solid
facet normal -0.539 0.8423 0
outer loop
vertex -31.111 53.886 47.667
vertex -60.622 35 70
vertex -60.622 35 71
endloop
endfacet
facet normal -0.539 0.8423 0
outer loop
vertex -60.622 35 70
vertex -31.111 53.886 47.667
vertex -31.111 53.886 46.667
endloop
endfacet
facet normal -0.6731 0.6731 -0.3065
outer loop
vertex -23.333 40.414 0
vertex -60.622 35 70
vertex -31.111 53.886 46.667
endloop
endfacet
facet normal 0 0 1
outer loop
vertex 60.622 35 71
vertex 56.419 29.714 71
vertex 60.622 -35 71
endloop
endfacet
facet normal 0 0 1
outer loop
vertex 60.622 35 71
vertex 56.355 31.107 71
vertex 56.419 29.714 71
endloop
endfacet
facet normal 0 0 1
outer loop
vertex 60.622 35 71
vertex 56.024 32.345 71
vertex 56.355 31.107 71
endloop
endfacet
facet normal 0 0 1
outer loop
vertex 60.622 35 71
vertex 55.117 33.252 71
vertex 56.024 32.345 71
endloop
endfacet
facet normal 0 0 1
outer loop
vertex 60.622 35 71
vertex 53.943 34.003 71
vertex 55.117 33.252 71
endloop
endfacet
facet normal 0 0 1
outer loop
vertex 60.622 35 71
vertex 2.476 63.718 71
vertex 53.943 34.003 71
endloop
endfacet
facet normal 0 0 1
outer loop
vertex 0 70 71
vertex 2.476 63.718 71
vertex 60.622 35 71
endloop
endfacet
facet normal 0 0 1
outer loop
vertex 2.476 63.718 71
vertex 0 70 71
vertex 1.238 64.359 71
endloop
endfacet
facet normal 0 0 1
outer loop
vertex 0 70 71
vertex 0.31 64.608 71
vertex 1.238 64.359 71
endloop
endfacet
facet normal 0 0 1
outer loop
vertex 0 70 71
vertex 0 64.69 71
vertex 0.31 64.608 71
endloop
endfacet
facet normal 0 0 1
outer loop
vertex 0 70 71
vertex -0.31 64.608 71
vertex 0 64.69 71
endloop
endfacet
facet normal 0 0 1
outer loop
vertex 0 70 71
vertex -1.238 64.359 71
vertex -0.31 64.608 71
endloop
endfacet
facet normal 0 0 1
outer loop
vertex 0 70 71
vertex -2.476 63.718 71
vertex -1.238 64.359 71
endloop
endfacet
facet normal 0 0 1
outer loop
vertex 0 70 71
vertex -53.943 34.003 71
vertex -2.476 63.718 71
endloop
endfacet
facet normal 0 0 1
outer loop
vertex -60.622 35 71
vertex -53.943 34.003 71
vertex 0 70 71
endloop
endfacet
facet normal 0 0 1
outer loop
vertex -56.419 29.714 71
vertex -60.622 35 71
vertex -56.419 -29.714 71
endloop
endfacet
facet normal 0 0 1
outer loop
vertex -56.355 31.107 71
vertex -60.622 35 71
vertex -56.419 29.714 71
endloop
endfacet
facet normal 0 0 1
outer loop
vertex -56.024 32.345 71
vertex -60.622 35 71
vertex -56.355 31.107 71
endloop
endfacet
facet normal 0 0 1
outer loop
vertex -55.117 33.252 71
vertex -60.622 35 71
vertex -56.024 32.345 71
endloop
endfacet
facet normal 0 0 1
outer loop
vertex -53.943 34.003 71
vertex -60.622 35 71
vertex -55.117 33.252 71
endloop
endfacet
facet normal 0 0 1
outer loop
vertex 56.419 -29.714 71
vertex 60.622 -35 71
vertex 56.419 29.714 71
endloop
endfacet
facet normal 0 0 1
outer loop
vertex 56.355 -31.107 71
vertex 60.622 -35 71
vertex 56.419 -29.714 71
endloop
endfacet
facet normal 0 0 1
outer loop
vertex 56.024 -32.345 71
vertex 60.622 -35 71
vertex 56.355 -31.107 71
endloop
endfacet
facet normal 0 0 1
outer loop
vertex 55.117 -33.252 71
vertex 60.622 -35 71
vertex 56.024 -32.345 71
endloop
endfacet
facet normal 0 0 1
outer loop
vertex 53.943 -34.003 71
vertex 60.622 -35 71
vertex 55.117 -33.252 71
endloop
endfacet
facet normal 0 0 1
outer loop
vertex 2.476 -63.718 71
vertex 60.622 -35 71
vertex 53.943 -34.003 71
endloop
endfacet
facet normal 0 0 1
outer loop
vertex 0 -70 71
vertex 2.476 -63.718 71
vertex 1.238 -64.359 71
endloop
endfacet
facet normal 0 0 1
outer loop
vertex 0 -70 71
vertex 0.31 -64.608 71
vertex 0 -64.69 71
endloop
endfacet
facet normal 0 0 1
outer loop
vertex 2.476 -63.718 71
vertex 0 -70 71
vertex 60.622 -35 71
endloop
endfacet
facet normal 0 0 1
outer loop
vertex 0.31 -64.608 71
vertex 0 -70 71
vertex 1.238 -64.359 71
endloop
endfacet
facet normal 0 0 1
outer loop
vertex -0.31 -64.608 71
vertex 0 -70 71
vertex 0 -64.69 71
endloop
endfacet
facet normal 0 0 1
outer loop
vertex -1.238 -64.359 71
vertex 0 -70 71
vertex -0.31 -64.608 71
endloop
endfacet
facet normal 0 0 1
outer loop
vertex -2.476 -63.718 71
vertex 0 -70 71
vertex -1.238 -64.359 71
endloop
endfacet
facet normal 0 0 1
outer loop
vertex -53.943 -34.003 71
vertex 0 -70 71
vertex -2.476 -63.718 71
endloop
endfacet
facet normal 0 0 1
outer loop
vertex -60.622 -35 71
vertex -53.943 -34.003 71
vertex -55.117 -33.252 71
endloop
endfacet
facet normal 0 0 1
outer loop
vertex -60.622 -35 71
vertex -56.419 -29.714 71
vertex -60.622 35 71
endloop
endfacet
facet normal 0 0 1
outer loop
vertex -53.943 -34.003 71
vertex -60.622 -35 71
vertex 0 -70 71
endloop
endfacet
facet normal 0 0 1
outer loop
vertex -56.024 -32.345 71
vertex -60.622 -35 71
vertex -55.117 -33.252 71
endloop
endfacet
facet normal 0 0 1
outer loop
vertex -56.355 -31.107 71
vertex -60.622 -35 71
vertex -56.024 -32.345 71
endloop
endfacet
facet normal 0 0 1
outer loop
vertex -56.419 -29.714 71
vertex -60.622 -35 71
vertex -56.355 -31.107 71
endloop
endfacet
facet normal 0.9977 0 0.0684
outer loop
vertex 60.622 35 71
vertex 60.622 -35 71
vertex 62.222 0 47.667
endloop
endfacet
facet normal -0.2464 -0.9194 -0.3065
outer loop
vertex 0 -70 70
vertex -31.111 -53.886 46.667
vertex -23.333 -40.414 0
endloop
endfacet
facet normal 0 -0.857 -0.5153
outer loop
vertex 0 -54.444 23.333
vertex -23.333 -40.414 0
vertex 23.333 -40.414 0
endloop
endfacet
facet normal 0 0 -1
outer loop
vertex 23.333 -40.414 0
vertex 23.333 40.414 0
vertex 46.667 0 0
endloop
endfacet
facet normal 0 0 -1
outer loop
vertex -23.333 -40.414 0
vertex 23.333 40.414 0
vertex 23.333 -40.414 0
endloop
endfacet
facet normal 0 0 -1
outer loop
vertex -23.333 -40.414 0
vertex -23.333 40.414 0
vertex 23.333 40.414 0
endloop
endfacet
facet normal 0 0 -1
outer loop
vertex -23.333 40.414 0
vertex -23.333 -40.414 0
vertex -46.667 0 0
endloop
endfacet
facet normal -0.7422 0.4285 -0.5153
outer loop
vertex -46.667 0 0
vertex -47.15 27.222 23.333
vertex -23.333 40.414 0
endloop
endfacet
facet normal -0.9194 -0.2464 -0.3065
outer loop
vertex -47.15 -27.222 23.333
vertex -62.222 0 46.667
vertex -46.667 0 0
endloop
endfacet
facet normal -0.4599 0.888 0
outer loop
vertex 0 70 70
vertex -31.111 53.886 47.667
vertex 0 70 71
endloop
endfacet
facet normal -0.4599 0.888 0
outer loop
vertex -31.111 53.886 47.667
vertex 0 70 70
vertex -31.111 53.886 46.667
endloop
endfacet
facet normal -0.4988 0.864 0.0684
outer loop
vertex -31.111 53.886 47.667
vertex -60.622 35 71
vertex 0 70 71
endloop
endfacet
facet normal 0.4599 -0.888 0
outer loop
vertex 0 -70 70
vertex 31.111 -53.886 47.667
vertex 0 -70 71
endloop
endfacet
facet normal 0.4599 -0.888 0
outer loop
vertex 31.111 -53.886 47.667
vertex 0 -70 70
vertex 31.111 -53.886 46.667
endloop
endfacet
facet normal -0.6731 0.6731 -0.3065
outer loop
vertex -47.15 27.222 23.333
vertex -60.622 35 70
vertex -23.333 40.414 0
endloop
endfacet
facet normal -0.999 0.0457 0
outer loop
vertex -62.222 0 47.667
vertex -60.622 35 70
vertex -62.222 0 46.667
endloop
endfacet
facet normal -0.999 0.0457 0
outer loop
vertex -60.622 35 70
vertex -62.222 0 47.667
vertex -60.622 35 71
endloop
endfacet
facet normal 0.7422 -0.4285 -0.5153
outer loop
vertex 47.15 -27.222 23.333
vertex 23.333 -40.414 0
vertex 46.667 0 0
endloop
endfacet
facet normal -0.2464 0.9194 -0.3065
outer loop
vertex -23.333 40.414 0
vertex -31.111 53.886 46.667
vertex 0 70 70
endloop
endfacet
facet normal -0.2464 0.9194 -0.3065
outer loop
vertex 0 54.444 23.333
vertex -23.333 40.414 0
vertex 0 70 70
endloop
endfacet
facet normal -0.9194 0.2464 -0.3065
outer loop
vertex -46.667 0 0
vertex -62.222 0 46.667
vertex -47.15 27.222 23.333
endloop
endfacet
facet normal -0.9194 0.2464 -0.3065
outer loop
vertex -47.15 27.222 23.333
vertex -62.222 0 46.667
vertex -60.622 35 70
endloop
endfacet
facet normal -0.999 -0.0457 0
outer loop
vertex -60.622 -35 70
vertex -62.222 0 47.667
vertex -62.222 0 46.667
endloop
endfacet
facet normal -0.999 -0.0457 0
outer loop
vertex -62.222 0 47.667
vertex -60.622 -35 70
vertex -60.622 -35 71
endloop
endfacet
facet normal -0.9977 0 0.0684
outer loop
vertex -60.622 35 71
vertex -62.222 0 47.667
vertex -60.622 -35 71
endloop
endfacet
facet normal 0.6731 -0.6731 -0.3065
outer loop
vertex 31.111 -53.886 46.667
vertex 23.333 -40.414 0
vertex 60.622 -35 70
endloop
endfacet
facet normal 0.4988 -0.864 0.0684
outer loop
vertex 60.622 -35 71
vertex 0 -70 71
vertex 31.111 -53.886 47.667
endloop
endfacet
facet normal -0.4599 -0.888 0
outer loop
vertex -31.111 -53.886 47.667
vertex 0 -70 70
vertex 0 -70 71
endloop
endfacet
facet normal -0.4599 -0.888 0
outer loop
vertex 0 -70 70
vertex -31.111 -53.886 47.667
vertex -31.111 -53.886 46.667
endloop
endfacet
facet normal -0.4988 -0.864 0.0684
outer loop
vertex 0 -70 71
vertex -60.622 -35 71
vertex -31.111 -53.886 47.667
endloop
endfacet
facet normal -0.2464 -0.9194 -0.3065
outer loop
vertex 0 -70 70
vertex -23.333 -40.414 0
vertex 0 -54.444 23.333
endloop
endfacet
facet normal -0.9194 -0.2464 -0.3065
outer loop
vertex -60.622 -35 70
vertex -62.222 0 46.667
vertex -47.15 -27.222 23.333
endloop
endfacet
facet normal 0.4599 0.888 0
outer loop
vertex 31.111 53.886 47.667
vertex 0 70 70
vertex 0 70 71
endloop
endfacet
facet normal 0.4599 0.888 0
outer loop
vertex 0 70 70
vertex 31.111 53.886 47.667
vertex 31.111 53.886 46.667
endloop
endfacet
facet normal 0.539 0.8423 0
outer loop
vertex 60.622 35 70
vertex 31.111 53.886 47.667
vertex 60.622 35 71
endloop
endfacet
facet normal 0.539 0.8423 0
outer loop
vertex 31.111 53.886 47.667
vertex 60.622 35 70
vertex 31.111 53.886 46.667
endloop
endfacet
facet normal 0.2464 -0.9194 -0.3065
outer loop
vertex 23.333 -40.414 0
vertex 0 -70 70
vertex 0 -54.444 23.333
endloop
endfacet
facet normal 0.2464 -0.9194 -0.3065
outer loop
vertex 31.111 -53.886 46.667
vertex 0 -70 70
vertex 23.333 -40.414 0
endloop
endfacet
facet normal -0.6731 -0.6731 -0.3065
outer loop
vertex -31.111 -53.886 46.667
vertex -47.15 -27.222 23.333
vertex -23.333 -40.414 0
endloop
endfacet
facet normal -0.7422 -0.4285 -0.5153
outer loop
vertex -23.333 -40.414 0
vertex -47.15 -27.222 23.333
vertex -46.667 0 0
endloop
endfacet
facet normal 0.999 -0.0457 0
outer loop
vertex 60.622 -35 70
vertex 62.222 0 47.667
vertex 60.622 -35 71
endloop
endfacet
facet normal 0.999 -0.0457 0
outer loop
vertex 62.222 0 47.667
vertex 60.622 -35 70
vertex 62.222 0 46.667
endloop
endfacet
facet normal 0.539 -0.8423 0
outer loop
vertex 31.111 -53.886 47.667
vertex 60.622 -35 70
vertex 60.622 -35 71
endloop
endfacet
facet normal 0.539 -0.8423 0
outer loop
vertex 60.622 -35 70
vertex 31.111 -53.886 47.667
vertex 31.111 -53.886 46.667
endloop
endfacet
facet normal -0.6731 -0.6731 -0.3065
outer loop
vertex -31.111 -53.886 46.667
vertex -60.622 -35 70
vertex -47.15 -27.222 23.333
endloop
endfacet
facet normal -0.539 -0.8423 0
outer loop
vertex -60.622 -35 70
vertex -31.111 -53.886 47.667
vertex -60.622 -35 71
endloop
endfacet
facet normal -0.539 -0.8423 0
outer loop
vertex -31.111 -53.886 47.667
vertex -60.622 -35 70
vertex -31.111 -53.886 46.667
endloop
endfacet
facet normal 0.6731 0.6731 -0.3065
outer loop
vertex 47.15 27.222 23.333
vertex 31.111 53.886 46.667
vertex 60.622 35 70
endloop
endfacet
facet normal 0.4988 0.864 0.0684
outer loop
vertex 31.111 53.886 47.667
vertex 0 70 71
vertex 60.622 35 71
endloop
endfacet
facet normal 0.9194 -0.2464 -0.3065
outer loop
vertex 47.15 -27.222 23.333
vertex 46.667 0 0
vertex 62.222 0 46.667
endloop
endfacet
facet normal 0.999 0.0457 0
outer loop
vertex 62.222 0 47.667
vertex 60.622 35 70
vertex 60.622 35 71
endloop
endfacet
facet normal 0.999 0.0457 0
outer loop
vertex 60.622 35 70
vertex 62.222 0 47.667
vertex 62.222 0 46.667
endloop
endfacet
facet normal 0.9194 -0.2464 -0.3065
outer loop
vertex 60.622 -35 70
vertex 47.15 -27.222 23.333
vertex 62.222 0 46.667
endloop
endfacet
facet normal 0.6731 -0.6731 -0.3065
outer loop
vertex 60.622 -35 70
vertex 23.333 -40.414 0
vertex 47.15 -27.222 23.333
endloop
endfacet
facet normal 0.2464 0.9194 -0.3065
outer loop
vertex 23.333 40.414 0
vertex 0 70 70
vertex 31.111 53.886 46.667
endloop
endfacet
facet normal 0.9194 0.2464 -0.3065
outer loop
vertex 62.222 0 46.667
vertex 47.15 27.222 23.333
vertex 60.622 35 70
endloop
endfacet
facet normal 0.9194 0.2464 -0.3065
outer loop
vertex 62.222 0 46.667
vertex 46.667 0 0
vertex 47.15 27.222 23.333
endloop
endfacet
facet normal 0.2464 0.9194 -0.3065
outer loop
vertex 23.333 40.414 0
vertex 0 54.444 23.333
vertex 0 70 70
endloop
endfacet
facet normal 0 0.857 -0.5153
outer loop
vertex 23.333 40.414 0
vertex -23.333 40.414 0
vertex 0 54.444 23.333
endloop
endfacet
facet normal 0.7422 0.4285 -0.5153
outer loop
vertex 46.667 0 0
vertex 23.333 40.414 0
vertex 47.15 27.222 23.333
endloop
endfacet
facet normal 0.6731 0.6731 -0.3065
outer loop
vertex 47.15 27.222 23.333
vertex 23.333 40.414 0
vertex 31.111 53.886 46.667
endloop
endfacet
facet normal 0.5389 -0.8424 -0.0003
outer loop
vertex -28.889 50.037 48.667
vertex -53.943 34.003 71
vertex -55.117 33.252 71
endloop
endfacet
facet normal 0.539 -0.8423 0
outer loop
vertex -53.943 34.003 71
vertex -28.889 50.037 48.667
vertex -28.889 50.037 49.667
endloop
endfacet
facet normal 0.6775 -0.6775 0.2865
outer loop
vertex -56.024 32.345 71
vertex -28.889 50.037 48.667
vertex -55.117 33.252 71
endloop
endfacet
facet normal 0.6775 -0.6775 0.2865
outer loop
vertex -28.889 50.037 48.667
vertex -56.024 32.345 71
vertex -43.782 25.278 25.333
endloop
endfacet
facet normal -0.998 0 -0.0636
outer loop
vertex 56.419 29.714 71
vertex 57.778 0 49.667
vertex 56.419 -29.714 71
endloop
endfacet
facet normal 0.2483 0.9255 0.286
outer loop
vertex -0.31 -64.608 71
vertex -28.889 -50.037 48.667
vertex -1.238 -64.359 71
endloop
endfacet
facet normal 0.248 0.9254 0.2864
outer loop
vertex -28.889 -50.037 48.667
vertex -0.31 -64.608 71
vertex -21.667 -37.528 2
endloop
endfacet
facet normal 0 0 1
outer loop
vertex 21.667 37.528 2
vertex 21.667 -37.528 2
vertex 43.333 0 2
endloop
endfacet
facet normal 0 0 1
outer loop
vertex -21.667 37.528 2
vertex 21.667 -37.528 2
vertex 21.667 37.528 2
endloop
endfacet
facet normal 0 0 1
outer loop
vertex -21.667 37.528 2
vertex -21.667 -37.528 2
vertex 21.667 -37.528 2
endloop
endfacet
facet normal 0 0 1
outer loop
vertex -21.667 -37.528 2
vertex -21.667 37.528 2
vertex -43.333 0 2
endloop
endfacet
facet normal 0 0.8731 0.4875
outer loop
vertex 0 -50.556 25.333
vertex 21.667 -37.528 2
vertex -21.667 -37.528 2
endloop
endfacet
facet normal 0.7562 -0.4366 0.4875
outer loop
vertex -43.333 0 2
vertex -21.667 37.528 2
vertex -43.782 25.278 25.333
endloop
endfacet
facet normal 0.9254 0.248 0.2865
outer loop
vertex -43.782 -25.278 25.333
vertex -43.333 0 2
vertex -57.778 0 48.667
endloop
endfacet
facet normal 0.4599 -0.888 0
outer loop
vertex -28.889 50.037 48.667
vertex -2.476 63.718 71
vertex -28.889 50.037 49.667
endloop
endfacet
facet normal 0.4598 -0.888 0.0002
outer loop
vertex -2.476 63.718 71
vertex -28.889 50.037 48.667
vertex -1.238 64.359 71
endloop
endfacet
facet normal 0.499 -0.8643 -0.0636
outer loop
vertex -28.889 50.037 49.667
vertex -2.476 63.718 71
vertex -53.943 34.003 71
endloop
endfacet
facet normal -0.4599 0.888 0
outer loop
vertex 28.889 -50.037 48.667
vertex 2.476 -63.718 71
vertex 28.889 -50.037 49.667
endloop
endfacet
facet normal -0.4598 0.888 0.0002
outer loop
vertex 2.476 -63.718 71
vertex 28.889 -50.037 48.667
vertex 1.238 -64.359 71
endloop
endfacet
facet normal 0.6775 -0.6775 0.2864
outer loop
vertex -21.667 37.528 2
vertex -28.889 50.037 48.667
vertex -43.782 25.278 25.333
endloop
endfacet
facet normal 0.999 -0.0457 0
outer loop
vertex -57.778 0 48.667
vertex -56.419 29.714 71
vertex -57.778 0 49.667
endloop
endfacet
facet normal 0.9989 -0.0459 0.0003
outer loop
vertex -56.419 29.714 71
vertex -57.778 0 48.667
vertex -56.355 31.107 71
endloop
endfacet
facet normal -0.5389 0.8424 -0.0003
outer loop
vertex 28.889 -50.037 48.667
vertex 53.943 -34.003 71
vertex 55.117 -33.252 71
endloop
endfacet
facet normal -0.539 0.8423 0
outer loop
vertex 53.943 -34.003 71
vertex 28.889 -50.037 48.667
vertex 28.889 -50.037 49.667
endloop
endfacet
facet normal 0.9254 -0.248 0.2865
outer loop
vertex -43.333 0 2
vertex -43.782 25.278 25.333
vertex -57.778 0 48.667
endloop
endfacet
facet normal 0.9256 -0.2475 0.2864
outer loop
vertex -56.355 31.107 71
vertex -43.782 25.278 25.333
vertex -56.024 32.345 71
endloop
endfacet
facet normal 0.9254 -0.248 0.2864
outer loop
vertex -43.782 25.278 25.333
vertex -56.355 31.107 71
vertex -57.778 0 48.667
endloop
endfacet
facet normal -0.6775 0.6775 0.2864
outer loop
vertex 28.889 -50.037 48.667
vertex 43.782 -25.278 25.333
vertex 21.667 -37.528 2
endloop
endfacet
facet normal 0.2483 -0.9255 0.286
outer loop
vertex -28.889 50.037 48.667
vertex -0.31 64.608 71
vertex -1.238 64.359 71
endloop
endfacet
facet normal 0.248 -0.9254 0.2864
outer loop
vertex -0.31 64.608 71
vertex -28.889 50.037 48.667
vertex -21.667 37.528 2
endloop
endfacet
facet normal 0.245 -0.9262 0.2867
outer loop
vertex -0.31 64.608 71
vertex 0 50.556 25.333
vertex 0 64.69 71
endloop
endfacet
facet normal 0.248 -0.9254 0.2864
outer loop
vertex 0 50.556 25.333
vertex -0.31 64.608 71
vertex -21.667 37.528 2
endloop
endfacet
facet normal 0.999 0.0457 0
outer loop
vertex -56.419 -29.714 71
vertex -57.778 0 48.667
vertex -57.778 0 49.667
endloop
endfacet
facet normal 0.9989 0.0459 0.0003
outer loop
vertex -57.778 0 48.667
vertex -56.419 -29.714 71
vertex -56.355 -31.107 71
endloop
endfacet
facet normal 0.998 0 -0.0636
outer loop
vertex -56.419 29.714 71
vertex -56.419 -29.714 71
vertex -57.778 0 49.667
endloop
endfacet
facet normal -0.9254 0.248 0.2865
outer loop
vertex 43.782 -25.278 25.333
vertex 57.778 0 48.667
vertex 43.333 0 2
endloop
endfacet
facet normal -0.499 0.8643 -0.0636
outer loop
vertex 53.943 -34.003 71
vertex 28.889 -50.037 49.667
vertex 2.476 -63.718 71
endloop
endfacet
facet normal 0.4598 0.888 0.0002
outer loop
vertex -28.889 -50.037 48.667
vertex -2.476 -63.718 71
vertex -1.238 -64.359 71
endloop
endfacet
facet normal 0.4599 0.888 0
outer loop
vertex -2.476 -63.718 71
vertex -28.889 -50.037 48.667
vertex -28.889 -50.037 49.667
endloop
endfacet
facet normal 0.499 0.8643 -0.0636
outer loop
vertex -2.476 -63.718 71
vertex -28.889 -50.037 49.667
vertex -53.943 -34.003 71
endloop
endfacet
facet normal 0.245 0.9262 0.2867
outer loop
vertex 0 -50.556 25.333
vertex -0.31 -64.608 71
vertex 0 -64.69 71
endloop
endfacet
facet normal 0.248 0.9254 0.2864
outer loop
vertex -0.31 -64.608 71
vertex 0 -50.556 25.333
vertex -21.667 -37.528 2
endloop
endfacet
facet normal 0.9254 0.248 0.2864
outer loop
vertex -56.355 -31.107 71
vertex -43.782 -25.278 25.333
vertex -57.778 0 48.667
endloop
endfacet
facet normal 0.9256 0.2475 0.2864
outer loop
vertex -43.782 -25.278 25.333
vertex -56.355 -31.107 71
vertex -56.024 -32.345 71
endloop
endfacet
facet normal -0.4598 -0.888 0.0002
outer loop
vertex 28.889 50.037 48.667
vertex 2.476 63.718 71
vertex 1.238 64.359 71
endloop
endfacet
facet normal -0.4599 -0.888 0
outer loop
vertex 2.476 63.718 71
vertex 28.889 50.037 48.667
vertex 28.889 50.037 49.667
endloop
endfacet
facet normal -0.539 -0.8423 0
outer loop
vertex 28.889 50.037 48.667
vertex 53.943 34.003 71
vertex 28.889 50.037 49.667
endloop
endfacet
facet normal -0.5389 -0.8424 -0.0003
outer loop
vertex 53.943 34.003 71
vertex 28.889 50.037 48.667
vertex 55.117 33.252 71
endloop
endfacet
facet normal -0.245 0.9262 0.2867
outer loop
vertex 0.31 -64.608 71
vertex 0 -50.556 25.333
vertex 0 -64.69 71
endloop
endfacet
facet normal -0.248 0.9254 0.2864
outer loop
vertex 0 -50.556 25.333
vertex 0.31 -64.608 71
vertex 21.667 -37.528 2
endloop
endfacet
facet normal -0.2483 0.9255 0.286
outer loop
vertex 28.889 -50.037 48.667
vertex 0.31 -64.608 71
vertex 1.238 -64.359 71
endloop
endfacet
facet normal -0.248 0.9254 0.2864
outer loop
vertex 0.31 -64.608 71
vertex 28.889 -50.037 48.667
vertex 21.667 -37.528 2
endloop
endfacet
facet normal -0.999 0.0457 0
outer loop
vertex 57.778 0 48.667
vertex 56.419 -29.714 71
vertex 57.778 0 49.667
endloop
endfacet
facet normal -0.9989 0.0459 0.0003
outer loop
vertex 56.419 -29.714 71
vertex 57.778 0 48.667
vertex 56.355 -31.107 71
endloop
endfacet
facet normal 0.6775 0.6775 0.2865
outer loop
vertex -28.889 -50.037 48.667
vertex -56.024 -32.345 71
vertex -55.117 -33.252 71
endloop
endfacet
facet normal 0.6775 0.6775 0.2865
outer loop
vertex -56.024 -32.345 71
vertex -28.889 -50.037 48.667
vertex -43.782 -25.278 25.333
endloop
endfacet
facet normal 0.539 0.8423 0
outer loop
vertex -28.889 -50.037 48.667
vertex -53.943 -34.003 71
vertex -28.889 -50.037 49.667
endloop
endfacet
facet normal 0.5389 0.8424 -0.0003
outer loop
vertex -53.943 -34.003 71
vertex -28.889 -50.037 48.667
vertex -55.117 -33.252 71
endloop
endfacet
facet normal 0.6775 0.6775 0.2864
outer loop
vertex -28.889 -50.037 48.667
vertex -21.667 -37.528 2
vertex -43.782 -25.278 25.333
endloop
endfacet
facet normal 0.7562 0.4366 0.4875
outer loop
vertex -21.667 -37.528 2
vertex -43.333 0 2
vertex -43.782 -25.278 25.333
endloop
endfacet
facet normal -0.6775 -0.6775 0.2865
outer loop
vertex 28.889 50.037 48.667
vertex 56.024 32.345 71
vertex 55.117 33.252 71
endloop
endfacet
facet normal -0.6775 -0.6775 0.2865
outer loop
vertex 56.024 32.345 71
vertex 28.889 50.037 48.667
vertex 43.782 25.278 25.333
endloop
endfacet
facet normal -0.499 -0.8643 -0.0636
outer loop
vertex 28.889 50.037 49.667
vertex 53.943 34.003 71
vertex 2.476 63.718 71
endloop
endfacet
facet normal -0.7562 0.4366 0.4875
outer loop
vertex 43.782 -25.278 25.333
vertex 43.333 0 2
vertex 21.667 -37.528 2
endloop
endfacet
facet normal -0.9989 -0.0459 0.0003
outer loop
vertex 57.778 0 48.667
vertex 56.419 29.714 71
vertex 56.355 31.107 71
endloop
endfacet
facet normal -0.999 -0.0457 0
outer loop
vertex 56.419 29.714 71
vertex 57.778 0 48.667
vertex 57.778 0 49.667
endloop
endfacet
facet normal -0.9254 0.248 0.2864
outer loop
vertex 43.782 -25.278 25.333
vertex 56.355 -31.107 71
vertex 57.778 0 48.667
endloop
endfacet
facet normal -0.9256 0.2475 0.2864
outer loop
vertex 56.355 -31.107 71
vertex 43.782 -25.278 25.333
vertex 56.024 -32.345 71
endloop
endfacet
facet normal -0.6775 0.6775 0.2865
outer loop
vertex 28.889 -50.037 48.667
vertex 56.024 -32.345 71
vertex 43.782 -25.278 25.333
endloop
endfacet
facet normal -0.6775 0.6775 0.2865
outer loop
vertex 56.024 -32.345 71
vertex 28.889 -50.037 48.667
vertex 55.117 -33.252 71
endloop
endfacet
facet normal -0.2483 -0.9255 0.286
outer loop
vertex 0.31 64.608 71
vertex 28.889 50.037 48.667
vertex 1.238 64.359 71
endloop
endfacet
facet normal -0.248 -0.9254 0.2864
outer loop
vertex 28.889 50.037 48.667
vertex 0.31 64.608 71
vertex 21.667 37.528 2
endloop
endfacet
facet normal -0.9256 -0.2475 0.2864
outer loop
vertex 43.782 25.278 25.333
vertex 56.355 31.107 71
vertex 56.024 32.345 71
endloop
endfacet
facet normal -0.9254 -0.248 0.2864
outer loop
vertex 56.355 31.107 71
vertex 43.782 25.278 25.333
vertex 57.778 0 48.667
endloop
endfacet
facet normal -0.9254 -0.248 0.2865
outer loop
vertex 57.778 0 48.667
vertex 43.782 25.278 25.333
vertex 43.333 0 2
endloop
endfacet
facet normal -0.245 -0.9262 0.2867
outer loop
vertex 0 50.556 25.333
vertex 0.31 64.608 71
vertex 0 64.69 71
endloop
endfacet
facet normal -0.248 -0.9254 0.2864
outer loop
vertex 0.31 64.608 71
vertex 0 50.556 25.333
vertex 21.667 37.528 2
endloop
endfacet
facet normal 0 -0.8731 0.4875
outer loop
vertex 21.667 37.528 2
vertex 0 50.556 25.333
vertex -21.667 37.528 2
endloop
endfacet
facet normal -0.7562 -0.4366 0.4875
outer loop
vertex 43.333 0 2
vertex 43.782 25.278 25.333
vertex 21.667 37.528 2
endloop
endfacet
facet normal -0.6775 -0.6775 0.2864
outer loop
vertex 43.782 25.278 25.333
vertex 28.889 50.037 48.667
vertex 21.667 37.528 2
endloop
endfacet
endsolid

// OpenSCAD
difference() {
    glarch(70, 70, 6);
    translate([0, 0, 2]) glarch(70, 65, 6);
}

module glarch(h, r, sides) {
    $fn = sides;
    hull() {
        for (i = [0:3]) {
            translate([0, 0, h*i/3])
                rotate([0, 0, 180 / sides  * i])
                    cylinder(h = 1, r = r * (i + 6) / 9);
        }
    }
}
